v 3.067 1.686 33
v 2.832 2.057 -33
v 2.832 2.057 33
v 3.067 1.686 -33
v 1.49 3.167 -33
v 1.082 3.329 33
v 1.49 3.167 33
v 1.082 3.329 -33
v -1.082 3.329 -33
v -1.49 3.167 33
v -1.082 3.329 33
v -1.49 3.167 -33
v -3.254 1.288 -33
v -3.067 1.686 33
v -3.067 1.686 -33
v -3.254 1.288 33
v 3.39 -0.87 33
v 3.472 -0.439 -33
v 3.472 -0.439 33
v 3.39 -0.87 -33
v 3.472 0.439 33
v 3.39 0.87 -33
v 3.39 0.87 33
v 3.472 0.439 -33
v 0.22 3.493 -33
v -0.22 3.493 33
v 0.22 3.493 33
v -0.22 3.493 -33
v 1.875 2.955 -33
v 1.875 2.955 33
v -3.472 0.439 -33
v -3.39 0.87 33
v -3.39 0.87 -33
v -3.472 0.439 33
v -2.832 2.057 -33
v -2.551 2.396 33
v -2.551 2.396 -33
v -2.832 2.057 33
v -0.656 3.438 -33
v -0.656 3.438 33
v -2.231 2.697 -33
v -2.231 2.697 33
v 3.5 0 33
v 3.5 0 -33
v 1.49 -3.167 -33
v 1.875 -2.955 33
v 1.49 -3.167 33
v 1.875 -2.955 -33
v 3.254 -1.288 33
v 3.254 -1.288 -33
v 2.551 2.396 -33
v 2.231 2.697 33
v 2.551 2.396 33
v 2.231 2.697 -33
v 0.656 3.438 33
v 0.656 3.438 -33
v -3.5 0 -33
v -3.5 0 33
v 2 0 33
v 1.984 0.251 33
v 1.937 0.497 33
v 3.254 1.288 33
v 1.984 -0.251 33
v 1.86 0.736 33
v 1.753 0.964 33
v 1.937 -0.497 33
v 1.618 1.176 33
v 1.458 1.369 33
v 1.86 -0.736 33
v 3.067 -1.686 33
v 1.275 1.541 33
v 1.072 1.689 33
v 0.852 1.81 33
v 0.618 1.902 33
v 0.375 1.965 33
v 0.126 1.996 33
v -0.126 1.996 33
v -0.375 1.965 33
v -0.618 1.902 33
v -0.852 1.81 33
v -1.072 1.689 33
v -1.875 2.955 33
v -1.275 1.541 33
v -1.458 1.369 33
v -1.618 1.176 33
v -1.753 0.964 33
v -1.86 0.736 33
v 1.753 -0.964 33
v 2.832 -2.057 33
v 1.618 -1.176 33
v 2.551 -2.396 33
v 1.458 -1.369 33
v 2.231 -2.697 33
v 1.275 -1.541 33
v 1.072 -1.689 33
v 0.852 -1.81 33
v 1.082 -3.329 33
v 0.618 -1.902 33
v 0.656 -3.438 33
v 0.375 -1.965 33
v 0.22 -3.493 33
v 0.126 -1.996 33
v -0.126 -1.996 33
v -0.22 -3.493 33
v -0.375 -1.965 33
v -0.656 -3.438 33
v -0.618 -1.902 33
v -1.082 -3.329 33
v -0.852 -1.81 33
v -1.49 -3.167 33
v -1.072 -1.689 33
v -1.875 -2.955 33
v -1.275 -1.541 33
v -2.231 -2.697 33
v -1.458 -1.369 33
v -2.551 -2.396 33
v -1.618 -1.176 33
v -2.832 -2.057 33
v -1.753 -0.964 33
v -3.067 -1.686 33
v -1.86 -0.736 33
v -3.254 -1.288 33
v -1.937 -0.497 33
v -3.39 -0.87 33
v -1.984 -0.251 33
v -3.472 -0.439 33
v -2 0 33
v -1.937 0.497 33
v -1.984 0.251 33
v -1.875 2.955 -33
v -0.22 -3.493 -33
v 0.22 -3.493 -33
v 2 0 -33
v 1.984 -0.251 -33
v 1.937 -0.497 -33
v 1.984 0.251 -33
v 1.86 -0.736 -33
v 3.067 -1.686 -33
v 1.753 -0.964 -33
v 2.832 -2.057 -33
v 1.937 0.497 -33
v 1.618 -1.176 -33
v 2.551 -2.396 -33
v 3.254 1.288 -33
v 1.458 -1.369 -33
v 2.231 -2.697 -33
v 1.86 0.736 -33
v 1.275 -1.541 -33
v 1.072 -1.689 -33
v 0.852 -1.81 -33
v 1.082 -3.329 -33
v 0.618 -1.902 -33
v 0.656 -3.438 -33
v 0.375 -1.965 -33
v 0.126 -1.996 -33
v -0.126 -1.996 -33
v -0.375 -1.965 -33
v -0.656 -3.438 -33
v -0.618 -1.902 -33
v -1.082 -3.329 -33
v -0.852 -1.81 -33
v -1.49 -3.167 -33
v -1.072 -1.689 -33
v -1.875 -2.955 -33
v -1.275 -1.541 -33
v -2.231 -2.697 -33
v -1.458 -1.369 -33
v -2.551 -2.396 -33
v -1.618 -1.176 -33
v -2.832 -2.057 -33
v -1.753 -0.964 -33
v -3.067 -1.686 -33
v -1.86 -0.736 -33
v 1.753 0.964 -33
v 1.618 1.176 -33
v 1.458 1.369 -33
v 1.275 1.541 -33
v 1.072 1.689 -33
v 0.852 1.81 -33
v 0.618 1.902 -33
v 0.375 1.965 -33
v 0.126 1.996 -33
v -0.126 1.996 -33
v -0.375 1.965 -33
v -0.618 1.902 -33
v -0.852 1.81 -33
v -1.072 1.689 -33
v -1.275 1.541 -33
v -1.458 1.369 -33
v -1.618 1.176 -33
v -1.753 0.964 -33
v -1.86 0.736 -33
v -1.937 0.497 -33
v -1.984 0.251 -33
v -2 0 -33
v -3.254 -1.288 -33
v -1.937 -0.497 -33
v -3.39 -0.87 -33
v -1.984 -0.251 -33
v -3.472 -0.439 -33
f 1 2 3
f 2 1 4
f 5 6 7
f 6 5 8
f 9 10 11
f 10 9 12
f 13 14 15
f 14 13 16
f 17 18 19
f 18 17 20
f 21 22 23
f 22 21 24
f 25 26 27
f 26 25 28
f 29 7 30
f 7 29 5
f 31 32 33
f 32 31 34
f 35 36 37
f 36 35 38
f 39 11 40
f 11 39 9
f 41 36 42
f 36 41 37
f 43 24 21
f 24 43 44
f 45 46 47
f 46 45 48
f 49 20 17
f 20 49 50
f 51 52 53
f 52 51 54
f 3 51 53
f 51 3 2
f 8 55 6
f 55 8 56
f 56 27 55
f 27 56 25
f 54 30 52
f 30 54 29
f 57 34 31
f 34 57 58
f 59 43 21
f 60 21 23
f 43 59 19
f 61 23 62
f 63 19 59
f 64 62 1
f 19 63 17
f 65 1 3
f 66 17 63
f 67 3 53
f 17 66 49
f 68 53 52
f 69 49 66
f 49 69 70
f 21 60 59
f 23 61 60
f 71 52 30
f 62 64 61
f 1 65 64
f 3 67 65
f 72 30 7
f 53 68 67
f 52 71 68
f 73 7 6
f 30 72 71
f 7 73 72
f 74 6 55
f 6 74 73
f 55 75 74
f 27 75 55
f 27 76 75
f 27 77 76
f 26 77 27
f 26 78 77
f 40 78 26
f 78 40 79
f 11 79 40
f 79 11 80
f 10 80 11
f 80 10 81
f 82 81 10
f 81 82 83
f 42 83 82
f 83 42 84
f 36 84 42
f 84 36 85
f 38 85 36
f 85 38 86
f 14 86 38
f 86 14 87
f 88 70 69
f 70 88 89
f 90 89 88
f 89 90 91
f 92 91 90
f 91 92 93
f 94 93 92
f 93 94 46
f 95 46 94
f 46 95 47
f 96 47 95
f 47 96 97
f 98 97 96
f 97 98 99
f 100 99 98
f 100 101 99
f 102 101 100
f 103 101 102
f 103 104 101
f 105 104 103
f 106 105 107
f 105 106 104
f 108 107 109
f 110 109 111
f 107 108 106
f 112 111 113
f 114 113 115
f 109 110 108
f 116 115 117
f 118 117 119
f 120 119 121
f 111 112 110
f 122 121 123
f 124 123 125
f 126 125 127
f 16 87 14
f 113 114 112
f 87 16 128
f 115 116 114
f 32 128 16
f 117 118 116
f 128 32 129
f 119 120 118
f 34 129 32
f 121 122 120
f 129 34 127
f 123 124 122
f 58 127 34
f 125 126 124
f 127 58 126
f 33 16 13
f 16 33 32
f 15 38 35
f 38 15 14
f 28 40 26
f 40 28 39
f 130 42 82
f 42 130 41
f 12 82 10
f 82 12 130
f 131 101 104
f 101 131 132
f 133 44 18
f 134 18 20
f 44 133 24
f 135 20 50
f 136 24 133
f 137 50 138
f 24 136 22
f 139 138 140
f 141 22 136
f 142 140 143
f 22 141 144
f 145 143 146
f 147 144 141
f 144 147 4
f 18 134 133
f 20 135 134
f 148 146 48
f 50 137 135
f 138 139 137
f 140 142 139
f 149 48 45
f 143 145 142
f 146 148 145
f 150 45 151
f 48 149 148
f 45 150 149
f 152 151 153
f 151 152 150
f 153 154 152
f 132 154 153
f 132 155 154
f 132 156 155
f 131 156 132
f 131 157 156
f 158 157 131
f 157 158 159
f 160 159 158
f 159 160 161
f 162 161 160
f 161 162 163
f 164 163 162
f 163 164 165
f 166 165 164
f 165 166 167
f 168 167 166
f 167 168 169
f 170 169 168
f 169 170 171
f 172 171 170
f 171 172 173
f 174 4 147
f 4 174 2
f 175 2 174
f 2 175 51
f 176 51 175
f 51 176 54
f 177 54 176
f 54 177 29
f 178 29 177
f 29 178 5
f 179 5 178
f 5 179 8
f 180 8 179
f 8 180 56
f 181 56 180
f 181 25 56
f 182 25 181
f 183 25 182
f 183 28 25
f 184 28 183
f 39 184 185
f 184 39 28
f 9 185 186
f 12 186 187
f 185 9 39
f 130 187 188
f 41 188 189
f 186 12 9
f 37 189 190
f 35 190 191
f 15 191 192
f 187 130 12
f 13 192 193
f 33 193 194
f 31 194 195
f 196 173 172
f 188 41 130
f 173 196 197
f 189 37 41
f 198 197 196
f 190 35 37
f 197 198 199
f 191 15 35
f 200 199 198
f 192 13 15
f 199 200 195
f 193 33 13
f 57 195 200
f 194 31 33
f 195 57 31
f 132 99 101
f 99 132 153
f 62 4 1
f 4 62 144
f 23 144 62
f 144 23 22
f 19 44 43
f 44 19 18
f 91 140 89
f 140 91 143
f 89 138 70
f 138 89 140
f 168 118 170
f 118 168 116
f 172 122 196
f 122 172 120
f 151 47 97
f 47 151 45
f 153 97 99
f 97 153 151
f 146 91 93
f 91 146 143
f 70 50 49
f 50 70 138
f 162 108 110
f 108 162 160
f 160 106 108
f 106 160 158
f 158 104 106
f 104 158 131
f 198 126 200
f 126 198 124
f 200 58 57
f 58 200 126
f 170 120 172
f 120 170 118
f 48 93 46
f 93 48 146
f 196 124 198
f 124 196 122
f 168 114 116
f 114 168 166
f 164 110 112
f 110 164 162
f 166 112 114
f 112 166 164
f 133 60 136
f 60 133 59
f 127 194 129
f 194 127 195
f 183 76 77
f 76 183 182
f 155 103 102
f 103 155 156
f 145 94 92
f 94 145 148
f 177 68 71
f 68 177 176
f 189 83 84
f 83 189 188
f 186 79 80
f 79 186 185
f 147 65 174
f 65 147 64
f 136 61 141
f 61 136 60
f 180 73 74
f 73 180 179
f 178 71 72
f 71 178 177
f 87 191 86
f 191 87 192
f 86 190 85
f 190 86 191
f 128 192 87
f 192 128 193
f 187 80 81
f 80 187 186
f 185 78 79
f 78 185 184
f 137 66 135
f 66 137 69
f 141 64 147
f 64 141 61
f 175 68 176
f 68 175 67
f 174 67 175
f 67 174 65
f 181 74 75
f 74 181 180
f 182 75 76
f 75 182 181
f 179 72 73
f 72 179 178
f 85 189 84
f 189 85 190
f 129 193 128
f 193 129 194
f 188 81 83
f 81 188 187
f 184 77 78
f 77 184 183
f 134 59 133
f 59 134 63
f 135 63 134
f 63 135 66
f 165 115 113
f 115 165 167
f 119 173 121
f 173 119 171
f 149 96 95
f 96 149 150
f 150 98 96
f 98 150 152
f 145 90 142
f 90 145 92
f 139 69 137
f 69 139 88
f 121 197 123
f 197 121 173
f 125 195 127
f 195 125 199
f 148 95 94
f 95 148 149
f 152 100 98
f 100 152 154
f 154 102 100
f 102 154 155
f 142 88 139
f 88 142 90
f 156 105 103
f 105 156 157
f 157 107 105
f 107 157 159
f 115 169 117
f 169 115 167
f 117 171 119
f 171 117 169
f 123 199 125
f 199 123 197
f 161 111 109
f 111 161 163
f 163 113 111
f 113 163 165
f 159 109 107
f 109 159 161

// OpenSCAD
$fn = 50;


difference() {
	union() {
		translate(v = [0, 0, -33.0000000000]) {
			cylinder(h = 66, r = 3.5000000000);
		}
	}
	union() {
		translate(v = [0, 0, -100.0000000000]) {
			cylinder(h = 200, r = 2);
		}
	}
}
